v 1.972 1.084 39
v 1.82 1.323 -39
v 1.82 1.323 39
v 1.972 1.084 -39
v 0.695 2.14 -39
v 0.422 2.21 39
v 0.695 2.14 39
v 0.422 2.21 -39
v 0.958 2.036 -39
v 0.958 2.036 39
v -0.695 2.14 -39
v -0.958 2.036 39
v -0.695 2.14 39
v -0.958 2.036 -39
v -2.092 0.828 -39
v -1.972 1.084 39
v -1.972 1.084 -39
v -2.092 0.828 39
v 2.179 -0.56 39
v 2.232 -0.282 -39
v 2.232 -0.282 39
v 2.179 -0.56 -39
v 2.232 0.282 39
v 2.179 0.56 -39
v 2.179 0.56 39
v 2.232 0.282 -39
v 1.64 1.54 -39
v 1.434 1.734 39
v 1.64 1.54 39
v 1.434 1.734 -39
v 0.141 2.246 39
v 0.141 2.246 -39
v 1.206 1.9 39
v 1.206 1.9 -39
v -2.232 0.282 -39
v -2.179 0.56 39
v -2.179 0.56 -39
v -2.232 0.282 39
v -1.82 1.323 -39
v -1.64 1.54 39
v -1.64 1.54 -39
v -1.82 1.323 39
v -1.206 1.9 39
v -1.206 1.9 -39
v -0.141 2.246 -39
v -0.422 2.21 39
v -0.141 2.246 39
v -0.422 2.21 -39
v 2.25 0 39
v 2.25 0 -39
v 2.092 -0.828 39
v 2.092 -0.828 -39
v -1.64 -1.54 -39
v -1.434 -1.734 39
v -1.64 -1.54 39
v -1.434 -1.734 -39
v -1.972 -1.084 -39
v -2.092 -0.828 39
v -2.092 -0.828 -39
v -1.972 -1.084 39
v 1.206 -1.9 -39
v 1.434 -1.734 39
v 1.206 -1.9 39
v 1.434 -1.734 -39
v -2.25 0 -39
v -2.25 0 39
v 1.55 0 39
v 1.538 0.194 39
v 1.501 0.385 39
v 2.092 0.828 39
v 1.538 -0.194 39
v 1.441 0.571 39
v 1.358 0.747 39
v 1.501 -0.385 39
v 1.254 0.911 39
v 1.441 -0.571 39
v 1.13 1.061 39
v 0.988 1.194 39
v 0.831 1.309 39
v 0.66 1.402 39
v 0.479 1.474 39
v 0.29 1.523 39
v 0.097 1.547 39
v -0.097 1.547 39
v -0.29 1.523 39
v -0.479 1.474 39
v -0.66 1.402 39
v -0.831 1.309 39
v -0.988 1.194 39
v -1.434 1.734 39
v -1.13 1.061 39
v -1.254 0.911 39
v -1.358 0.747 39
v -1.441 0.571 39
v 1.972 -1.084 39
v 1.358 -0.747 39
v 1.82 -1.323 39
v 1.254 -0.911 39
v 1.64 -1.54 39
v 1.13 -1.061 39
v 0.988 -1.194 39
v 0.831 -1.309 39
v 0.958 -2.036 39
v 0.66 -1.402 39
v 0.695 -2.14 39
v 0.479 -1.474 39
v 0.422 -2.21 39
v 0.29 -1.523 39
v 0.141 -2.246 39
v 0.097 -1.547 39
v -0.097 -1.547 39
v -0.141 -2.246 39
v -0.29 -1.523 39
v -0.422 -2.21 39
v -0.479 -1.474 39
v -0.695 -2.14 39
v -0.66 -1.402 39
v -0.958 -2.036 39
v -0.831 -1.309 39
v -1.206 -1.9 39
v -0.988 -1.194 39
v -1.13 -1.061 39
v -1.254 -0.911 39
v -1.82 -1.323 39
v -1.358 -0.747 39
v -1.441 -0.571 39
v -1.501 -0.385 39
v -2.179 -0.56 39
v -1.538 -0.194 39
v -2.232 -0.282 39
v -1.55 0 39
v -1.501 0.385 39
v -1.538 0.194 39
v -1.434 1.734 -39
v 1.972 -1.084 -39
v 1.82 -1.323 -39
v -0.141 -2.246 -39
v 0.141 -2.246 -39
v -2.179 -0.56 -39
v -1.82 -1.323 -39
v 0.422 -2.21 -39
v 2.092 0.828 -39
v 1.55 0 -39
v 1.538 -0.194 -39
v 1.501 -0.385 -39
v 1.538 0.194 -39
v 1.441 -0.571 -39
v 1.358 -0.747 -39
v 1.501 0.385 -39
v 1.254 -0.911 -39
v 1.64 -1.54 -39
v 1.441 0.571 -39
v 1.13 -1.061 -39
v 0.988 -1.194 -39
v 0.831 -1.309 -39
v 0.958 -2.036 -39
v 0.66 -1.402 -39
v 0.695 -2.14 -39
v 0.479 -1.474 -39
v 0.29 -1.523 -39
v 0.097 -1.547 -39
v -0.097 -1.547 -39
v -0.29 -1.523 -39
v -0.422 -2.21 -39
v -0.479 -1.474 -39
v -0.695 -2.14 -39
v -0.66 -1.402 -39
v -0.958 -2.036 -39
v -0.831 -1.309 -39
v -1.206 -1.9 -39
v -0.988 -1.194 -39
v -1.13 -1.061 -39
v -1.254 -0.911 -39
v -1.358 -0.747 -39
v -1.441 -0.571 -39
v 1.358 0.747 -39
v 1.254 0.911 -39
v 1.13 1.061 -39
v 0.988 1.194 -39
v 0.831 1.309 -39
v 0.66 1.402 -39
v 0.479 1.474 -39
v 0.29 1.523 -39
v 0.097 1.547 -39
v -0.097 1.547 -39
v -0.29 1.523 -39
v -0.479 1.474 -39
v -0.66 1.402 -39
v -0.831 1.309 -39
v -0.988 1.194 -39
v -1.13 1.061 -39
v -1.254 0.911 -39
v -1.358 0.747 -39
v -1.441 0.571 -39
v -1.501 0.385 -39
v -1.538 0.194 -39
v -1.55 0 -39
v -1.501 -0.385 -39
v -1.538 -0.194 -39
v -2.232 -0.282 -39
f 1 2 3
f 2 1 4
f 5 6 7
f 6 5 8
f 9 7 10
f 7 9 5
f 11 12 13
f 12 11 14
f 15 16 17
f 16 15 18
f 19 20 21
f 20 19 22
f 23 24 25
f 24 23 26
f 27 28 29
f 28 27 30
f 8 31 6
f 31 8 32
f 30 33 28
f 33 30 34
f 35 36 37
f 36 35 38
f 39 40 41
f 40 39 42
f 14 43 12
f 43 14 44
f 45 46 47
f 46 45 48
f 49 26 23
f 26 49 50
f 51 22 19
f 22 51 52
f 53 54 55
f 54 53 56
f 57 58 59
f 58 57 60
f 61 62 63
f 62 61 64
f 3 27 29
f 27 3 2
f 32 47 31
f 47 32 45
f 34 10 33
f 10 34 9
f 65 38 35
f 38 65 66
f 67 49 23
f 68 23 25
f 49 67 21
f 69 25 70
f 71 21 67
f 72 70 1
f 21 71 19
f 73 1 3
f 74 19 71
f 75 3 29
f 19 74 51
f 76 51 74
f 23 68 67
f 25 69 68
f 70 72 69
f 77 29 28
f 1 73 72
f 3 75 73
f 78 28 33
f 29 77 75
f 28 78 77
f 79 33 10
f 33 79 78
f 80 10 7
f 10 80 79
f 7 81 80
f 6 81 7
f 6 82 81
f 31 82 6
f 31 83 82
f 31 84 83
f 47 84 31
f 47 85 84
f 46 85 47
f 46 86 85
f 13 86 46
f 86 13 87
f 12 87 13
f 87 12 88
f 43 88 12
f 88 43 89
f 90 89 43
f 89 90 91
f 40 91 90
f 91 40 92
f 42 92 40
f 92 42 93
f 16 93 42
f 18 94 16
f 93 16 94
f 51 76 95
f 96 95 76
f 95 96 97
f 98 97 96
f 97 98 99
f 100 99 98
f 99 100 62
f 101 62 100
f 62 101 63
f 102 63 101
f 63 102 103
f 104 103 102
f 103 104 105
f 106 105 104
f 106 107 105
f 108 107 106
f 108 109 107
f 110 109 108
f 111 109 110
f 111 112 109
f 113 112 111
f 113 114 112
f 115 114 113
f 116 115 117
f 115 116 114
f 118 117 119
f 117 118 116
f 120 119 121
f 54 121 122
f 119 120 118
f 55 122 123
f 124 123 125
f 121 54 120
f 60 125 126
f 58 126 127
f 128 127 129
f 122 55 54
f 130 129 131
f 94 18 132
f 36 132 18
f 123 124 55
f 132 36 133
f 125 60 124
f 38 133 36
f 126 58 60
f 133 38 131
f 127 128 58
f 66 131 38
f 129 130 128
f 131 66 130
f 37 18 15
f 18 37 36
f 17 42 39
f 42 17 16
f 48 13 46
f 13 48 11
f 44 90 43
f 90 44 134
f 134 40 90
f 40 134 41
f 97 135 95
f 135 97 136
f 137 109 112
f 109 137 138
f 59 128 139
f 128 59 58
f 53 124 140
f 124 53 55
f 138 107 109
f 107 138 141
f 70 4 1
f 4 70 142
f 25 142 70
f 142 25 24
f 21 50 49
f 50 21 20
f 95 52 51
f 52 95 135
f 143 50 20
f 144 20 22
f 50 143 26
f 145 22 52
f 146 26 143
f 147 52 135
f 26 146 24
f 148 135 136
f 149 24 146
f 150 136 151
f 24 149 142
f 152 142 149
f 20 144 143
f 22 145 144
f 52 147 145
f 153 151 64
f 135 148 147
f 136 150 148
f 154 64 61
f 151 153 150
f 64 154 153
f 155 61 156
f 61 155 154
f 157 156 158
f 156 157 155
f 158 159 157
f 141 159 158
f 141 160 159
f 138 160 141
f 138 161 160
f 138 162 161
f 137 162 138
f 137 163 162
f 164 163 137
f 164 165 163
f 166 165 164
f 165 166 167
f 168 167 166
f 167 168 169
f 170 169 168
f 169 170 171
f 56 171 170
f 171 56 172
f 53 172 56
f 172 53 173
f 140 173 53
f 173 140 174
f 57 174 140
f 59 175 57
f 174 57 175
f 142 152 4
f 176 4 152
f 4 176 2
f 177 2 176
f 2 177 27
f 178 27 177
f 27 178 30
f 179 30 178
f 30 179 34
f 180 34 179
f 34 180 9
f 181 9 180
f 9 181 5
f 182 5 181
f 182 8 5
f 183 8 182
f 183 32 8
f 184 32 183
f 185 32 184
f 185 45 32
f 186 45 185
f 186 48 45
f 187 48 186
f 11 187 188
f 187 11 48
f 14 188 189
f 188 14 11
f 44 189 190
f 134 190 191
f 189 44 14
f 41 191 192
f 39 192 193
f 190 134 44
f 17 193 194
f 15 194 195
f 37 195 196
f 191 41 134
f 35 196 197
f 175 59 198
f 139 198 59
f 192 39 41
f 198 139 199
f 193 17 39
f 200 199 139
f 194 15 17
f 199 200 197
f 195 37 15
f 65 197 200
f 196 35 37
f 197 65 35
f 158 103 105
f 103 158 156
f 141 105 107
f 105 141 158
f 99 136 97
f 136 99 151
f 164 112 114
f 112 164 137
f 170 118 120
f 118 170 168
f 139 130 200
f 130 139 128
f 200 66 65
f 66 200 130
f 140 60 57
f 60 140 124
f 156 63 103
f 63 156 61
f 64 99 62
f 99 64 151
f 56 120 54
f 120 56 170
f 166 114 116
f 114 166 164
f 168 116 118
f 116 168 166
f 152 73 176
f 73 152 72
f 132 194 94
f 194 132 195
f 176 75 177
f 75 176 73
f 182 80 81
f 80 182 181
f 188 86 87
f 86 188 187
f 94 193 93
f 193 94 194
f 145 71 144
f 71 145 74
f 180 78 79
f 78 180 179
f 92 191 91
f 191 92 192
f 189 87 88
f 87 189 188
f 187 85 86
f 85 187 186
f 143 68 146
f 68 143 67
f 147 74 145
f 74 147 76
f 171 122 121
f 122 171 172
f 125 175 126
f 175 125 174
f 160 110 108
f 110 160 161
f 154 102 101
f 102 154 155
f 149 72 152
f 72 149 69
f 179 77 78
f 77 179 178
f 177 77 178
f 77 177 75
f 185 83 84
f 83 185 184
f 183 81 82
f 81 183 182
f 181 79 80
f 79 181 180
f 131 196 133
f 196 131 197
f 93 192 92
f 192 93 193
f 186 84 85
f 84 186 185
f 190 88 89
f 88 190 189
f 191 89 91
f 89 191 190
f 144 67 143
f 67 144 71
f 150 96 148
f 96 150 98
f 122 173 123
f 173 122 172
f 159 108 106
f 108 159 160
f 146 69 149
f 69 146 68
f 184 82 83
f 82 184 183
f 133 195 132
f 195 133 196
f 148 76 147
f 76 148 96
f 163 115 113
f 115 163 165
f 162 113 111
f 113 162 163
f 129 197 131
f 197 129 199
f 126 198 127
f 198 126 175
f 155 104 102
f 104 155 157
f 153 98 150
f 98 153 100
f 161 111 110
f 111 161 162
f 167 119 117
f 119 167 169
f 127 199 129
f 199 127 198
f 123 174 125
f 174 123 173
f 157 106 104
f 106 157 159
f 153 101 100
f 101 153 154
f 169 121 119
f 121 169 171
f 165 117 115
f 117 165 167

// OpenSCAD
$fn = 50;


difference() {
	union() {
		translate(v = [0, 0, -39.0000000000]) {
			cylinder(h = 78, r = 2.2500000000);
		}
	}
	union() {
		translate(v = [0, 0, -100.0000000000]) {
			cylinder(h = 200, r = 1.5500000000);
		}
	}
}
